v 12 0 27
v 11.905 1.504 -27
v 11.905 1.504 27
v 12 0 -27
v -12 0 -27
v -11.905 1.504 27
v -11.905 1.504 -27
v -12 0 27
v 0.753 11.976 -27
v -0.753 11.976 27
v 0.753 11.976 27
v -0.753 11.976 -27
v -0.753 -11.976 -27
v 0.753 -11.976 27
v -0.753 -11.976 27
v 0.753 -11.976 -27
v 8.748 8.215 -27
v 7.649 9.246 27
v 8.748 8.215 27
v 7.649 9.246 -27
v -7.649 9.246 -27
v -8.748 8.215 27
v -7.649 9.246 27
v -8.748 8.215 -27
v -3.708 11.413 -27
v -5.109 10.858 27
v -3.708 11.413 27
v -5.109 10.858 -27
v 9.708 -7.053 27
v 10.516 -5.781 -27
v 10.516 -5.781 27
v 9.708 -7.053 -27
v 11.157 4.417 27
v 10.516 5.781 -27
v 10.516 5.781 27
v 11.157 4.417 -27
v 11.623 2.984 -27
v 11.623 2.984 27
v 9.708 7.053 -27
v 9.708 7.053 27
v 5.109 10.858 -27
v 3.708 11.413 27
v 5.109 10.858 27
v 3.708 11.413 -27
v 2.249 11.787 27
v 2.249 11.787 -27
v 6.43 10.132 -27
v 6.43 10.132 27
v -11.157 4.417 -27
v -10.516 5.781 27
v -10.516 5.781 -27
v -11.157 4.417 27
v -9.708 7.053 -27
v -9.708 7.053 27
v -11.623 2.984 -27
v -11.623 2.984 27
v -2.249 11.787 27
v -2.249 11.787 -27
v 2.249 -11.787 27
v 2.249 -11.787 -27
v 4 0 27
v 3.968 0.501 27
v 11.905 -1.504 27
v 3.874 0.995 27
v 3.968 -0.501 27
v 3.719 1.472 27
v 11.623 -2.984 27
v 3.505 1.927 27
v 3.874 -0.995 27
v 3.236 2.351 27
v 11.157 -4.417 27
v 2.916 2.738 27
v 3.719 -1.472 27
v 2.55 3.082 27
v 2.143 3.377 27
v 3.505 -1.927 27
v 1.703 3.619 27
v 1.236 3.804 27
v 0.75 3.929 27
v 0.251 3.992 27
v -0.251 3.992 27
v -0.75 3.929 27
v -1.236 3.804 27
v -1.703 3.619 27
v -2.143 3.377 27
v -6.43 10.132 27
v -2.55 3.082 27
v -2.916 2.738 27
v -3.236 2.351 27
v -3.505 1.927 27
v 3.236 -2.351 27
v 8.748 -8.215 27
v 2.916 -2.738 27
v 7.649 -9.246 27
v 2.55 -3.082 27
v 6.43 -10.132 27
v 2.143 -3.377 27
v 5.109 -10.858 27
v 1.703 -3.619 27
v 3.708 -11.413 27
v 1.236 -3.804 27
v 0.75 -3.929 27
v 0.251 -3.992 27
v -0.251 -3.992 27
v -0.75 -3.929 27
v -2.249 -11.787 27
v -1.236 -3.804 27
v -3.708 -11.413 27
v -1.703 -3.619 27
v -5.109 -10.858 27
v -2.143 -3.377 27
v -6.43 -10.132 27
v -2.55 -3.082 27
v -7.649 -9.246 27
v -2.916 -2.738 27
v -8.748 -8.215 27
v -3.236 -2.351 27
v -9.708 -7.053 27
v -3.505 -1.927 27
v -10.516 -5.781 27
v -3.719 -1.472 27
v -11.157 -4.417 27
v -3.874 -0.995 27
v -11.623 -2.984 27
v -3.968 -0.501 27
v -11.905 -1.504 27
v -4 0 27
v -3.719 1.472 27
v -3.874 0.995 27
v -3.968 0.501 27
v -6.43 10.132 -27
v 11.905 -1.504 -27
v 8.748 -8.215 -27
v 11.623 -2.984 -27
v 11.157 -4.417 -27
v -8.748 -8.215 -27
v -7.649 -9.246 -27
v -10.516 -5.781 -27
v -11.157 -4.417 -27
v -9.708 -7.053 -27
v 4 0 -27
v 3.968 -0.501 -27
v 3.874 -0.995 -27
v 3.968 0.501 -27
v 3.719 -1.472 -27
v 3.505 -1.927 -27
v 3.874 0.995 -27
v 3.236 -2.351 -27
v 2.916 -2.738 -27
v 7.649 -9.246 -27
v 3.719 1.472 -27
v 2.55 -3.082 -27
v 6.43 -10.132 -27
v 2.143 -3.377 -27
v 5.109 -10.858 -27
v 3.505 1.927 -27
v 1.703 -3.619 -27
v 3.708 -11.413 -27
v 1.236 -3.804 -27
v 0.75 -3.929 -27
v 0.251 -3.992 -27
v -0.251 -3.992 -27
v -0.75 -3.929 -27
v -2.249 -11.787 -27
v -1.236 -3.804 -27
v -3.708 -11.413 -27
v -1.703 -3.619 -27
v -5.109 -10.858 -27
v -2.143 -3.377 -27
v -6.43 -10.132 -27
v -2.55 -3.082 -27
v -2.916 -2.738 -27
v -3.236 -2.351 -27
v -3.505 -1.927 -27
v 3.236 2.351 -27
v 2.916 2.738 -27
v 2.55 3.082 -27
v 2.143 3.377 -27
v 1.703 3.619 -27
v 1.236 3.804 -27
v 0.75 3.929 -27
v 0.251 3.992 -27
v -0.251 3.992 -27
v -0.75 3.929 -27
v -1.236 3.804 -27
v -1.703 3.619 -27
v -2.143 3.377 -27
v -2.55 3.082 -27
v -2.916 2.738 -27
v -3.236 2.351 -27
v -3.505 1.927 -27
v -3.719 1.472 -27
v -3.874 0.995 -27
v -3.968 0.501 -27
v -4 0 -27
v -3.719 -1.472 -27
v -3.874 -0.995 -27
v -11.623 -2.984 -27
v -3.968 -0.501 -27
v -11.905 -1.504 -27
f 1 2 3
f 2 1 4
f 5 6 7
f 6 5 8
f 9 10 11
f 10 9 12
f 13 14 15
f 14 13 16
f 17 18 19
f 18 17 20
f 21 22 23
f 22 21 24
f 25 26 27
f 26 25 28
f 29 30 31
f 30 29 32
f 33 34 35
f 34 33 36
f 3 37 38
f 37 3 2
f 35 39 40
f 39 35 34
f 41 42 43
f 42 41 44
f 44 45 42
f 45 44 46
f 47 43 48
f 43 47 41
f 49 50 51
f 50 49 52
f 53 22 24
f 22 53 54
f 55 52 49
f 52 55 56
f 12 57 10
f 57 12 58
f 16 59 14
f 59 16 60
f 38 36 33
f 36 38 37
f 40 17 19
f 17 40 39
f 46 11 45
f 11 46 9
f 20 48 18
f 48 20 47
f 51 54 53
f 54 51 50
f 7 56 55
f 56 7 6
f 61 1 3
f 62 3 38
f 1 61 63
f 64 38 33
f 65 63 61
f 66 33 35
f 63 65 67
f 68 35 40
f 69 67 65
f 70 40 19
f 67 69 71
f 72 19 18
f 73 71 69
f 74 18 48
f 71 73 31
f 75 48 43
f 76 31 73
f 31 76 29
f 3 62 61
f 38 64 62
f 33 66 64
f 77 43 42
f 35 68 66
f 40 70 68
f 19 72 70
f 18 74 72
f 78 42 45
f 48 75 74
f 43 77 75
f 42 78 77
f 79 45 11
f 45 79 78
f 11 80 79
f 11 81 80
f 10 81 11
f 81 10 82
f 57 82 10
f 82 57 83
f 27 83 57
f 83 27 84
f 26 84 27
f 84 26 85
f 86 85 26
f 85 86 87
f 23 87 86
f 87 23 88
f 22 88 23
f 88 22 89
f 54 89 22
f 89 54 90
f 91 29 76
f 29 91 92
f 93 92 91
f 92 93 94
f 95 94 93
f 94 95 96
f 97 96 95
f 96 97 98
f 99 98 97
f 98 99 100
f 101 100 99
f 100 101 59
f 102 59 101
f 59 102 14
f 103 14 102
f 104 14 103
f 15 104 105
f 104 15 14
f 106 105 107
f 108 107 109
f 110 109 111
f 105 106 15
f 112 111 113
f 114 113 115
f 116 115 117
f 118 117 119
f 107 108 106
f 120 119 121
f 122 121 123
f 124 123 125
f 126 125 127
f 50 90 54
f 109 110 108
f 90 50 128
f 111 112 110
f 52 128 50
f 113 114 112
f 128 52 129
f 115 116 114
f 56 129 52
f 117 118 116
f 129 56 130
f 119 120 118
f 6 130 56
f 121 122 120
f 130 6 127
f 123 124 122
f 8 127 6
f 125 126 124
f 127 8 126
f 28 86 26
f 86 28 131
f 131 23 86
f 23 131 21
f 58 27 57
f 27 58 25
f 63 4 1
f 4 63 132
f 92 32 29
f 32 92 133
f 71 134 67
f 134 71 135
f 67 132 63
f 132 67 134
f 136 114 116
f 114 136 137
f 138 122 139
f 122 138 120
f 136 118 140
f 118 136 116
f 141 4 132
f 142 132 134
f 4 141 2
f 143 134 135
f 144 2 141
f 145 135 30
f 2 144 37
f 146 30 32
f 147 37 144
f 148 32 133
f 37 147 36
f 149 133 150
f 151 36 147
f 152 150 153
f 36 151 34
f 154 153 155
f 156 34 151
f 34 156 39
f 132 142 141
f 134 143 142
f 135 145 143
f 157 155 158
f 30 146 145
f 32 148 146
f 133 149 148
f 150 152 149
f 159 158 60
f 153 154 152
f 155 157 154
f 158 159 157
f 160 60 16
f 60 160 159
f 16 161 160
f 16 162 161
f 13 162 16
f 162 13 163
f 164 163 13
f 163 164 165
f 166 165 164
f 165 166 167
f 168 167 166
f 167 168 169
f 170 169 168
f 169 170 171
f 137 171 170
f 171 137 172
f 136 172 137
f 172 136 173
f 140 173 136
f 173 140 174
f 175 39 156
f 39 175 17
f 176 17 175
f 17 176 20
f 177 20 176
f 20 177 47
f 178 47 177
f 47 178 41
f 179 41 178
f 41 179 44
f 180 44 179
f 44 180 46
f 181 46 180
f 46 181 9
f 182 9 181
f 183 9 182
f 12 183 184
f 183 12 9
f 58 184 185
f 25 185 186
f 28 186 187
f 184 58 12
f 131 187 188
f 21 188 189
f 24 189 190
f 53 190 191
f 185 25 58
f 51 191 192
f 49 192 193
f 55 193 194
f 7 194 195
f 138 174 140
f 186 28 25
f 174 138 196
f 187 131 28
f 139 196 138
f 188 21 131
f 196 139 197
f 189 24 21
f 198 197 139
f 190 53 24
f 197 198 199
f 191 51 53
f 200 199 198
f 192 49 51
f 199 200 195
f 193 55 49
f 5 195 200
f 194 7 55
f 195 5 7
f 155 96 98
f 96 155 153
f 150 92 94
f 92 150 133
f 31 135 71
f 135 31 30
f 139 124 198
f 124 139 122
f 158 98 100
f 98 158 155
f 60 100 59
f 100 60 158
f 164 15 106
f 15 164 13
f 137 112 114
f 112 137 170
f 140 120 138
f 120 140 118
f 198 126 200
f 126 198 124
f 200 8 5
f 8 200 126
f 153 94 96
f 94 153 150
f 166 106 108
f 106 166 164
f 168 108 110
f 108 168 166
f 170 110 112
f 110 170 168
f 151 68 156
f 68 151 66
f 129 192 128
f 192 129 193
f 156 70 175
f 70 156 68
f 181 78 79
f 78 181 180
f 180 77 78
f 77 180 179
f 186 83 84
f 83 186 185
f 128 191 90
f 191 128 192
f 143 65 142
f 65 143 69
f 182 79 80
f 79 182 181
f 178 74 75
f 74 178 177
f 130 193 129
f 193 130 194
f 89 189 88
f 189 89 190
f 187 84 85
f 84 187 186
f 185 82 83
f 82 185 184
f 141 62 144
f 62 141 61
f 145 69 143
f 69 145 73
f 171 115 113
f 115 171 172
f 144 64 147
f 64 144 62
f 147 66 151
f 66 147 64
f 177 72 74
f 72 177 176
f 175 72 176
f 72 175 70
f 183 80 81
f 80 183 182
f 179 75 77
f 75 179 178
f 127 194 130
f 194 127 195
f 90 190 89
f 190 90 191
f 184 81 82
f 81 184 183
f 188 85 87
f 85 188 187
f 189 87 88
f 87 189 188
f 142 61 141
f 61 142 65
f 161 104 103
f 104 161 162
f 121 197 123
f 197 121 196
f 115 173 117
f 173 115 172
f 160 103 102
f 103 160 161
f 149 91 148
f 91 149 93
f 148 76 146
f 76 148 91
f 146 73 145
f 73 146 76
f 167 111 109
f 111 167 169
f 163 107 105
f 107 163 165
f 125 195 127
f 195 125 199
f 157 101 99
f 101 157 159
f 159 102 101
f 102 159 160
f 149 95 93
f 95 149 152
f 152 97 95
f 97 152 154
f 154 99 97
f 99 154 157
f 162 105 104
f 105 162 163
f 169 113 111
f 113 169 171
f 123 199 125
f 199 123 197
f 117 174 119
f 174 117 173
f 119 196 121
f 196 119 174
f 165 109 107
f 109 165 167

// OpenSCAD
$fn = 50;


difference() {
	union() {
		translate(v = [0, 0, -27.0000000000]) {
			cylinder(h = 54, r = 12.0000000000);
		}
	}
	union() {
		translate(v = [0, 0, -100.0000000000]) {
			cylinder(h = 200, r = 4);
		}
	}
}
